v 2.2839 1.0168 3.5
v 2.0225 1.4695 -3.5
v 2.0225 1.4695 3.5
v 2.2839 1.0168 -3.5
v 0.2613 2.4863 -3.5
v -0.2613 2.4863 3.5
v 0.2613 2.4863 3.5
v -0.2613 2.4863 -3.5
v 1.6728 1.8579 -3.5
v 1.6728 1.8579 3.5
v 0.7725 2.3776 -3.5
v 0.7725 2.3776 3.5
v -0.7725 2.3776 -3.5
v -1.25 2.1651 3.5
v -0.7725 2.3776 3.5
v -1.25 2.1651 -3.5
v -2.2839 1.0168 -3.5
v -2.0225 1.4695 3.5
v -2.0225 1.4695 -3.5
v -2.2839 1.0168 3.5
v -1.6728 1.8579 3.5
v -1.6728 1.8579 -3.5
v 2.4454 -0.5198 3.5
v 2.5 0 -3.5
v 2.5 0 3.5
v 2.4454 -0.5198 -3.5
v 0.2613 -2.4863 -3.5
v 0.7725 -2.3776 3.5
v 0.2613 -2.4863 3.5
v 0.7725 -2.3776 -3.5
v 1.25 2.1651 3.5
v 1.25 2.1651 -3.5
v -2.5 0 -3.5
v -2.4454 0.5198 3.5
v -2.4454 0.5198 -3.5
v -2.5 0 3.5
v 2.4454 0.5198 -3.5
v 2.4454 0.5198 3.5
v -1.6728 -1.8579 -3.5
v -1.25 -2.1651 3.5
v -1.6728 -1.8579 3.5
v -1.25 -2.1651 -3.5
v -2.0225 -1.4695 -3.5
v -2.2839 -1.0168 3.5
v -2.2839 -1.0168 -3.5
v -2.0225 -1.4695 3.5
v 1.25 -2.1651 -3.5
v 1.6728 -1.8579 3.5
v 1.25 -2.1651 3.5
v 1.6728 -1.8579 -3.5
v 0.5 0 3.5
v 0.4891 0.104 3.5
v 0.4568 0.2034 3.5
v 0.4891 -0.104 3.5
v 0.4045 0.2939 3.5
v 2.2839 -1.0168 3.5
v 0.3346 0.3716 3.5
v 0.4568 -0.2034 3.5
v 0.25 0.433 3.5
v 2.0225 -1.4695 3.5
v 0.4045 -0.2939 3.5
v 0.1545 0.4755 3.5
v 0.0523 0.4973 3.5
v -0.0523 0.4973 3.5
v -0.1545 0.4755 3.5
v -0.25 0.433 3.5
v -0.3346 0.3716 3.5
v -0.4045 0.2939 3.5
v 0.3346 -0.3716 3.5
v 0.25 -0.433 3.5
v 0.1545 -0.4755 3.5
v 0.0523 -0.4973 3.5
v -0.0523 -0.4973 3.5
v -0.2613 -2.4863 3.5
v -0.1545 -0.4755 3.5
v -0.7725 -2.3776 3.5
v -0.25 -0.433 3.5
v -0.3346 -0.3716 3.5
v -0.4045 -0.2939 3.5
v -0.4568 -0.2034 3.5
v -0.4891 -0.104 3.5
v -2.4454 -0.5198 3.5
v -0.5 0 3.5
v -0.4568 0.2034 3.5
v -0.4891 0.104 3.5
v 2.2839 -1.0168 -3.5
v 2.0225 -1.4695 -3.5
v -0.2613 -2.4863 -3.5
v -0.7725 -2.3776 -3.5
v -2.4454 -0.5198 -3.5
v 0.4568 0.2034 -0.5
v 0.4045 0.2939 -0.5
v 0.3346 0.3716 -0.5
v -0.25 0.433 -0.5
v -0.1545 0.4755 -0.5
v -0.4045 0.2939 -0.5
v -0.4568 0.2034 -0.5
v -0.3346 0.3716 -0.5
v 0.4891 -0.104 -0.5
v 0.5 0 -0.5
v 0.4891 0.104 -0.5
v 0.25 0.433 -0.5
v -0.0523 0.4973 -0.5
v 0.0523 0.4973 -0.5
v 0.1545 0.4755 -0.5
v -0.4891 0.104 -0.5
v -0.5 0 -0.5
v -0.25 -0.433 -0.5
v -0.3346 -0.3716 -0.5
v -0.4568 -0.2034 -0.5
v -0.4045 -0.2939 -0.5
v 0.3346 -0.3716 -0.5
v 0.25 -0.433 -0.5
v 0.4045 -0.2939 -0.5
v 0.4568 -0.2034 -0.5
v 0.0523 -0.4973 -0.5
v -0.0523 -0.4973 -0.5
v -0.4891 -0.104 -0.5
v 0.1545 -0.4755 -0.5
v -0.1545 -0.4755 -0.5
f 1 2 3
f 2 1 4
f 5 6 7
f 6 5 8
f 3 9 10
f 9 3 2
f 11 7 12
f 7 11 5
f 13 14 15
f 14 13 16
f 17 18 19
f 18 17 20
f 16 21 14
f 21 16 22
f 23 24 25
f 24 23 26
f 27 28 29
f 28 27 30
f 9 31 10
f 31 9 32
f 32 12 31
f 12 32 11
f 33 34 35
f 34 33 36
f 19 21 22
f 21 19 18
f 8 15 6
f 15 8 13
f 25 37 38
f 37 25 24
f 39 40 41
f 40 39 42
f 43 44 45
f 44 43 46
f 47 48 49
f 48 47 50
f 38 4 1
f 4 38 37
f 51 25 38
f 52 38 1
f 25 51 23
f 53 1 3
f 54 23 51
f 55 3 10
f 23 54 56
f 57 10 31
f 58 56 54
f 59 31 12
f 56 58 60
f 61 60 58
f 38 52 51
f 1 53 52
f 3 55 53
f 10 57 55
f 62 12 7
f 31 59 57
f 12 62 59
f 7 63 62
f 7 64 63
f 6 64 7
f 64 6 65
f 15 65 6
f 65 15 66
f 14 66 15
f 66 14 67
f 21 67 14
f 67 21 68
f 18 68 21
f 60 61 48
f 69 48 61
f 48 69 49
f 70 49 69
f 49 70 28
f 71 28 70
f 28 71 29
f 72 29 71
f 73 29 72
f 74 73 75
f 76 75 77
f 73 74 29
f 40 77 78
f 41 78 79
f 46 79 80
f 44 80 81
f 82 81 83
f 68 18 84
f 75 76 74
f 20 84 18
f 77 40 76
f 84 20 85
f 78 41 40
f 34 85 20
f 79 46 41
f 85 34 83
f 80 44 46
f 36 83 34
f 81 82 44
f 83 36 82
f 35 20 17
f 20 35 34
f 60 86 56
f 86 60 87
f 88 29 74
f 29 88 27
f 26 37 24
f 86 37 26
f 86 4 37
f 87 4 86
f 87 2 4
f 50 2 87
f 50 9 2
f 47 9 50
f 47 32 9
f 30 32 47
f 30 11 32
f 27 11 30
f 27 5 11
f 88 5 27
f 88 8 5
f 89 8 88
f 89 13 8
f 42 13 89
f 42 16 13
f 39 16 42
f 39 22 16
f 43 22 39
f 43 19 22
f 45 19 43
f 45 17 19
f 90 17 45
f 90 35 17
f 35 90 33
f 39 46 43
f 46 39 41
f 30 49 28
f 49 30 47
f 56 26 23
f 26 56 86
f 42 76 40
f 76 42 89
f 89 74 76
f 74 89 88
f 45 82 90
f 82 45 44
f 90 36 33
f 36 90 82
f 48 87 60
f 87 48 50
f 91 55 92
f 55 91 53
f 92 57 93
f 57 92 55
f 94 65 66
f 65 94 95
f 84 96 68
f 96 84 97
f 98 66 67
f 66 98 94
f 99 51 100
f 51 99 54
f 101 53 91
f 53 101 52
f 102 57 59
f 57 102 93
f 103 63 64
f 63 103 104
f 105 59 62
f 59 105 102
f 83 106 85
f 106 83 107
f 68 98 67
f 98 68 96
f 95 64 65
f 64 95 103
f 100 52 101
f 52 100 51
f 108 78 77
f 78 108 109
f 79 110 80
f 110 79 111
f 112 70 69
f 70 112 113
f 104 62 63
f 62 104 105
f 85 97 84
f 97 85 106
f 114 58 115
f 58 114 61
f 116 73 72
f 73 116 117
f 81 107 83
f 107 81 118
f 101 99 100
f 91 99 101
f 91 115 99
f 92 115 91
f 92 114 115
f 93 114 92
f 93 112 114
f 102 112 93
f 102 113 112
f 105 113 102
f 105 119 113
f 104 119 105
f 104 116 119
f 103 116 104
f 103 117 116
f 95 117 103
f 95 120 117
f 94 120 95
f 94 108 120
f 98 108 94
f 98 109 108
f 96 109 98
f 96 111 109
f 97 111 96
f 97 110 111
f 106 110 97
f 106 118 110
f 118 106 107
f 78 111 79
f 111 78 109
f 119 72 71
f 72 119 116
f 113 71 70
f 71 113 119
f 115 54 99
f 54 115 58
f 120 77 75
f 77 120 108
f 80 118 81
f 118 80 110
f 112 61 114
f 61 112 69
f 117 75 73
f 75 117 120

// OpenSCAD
// Endkappe

$fn=30;


difference() {
    cylinder(d=5,h=7, center=true);
    translate([0,0,2])
    cylinder(d=1,h=5, center=true);
}
